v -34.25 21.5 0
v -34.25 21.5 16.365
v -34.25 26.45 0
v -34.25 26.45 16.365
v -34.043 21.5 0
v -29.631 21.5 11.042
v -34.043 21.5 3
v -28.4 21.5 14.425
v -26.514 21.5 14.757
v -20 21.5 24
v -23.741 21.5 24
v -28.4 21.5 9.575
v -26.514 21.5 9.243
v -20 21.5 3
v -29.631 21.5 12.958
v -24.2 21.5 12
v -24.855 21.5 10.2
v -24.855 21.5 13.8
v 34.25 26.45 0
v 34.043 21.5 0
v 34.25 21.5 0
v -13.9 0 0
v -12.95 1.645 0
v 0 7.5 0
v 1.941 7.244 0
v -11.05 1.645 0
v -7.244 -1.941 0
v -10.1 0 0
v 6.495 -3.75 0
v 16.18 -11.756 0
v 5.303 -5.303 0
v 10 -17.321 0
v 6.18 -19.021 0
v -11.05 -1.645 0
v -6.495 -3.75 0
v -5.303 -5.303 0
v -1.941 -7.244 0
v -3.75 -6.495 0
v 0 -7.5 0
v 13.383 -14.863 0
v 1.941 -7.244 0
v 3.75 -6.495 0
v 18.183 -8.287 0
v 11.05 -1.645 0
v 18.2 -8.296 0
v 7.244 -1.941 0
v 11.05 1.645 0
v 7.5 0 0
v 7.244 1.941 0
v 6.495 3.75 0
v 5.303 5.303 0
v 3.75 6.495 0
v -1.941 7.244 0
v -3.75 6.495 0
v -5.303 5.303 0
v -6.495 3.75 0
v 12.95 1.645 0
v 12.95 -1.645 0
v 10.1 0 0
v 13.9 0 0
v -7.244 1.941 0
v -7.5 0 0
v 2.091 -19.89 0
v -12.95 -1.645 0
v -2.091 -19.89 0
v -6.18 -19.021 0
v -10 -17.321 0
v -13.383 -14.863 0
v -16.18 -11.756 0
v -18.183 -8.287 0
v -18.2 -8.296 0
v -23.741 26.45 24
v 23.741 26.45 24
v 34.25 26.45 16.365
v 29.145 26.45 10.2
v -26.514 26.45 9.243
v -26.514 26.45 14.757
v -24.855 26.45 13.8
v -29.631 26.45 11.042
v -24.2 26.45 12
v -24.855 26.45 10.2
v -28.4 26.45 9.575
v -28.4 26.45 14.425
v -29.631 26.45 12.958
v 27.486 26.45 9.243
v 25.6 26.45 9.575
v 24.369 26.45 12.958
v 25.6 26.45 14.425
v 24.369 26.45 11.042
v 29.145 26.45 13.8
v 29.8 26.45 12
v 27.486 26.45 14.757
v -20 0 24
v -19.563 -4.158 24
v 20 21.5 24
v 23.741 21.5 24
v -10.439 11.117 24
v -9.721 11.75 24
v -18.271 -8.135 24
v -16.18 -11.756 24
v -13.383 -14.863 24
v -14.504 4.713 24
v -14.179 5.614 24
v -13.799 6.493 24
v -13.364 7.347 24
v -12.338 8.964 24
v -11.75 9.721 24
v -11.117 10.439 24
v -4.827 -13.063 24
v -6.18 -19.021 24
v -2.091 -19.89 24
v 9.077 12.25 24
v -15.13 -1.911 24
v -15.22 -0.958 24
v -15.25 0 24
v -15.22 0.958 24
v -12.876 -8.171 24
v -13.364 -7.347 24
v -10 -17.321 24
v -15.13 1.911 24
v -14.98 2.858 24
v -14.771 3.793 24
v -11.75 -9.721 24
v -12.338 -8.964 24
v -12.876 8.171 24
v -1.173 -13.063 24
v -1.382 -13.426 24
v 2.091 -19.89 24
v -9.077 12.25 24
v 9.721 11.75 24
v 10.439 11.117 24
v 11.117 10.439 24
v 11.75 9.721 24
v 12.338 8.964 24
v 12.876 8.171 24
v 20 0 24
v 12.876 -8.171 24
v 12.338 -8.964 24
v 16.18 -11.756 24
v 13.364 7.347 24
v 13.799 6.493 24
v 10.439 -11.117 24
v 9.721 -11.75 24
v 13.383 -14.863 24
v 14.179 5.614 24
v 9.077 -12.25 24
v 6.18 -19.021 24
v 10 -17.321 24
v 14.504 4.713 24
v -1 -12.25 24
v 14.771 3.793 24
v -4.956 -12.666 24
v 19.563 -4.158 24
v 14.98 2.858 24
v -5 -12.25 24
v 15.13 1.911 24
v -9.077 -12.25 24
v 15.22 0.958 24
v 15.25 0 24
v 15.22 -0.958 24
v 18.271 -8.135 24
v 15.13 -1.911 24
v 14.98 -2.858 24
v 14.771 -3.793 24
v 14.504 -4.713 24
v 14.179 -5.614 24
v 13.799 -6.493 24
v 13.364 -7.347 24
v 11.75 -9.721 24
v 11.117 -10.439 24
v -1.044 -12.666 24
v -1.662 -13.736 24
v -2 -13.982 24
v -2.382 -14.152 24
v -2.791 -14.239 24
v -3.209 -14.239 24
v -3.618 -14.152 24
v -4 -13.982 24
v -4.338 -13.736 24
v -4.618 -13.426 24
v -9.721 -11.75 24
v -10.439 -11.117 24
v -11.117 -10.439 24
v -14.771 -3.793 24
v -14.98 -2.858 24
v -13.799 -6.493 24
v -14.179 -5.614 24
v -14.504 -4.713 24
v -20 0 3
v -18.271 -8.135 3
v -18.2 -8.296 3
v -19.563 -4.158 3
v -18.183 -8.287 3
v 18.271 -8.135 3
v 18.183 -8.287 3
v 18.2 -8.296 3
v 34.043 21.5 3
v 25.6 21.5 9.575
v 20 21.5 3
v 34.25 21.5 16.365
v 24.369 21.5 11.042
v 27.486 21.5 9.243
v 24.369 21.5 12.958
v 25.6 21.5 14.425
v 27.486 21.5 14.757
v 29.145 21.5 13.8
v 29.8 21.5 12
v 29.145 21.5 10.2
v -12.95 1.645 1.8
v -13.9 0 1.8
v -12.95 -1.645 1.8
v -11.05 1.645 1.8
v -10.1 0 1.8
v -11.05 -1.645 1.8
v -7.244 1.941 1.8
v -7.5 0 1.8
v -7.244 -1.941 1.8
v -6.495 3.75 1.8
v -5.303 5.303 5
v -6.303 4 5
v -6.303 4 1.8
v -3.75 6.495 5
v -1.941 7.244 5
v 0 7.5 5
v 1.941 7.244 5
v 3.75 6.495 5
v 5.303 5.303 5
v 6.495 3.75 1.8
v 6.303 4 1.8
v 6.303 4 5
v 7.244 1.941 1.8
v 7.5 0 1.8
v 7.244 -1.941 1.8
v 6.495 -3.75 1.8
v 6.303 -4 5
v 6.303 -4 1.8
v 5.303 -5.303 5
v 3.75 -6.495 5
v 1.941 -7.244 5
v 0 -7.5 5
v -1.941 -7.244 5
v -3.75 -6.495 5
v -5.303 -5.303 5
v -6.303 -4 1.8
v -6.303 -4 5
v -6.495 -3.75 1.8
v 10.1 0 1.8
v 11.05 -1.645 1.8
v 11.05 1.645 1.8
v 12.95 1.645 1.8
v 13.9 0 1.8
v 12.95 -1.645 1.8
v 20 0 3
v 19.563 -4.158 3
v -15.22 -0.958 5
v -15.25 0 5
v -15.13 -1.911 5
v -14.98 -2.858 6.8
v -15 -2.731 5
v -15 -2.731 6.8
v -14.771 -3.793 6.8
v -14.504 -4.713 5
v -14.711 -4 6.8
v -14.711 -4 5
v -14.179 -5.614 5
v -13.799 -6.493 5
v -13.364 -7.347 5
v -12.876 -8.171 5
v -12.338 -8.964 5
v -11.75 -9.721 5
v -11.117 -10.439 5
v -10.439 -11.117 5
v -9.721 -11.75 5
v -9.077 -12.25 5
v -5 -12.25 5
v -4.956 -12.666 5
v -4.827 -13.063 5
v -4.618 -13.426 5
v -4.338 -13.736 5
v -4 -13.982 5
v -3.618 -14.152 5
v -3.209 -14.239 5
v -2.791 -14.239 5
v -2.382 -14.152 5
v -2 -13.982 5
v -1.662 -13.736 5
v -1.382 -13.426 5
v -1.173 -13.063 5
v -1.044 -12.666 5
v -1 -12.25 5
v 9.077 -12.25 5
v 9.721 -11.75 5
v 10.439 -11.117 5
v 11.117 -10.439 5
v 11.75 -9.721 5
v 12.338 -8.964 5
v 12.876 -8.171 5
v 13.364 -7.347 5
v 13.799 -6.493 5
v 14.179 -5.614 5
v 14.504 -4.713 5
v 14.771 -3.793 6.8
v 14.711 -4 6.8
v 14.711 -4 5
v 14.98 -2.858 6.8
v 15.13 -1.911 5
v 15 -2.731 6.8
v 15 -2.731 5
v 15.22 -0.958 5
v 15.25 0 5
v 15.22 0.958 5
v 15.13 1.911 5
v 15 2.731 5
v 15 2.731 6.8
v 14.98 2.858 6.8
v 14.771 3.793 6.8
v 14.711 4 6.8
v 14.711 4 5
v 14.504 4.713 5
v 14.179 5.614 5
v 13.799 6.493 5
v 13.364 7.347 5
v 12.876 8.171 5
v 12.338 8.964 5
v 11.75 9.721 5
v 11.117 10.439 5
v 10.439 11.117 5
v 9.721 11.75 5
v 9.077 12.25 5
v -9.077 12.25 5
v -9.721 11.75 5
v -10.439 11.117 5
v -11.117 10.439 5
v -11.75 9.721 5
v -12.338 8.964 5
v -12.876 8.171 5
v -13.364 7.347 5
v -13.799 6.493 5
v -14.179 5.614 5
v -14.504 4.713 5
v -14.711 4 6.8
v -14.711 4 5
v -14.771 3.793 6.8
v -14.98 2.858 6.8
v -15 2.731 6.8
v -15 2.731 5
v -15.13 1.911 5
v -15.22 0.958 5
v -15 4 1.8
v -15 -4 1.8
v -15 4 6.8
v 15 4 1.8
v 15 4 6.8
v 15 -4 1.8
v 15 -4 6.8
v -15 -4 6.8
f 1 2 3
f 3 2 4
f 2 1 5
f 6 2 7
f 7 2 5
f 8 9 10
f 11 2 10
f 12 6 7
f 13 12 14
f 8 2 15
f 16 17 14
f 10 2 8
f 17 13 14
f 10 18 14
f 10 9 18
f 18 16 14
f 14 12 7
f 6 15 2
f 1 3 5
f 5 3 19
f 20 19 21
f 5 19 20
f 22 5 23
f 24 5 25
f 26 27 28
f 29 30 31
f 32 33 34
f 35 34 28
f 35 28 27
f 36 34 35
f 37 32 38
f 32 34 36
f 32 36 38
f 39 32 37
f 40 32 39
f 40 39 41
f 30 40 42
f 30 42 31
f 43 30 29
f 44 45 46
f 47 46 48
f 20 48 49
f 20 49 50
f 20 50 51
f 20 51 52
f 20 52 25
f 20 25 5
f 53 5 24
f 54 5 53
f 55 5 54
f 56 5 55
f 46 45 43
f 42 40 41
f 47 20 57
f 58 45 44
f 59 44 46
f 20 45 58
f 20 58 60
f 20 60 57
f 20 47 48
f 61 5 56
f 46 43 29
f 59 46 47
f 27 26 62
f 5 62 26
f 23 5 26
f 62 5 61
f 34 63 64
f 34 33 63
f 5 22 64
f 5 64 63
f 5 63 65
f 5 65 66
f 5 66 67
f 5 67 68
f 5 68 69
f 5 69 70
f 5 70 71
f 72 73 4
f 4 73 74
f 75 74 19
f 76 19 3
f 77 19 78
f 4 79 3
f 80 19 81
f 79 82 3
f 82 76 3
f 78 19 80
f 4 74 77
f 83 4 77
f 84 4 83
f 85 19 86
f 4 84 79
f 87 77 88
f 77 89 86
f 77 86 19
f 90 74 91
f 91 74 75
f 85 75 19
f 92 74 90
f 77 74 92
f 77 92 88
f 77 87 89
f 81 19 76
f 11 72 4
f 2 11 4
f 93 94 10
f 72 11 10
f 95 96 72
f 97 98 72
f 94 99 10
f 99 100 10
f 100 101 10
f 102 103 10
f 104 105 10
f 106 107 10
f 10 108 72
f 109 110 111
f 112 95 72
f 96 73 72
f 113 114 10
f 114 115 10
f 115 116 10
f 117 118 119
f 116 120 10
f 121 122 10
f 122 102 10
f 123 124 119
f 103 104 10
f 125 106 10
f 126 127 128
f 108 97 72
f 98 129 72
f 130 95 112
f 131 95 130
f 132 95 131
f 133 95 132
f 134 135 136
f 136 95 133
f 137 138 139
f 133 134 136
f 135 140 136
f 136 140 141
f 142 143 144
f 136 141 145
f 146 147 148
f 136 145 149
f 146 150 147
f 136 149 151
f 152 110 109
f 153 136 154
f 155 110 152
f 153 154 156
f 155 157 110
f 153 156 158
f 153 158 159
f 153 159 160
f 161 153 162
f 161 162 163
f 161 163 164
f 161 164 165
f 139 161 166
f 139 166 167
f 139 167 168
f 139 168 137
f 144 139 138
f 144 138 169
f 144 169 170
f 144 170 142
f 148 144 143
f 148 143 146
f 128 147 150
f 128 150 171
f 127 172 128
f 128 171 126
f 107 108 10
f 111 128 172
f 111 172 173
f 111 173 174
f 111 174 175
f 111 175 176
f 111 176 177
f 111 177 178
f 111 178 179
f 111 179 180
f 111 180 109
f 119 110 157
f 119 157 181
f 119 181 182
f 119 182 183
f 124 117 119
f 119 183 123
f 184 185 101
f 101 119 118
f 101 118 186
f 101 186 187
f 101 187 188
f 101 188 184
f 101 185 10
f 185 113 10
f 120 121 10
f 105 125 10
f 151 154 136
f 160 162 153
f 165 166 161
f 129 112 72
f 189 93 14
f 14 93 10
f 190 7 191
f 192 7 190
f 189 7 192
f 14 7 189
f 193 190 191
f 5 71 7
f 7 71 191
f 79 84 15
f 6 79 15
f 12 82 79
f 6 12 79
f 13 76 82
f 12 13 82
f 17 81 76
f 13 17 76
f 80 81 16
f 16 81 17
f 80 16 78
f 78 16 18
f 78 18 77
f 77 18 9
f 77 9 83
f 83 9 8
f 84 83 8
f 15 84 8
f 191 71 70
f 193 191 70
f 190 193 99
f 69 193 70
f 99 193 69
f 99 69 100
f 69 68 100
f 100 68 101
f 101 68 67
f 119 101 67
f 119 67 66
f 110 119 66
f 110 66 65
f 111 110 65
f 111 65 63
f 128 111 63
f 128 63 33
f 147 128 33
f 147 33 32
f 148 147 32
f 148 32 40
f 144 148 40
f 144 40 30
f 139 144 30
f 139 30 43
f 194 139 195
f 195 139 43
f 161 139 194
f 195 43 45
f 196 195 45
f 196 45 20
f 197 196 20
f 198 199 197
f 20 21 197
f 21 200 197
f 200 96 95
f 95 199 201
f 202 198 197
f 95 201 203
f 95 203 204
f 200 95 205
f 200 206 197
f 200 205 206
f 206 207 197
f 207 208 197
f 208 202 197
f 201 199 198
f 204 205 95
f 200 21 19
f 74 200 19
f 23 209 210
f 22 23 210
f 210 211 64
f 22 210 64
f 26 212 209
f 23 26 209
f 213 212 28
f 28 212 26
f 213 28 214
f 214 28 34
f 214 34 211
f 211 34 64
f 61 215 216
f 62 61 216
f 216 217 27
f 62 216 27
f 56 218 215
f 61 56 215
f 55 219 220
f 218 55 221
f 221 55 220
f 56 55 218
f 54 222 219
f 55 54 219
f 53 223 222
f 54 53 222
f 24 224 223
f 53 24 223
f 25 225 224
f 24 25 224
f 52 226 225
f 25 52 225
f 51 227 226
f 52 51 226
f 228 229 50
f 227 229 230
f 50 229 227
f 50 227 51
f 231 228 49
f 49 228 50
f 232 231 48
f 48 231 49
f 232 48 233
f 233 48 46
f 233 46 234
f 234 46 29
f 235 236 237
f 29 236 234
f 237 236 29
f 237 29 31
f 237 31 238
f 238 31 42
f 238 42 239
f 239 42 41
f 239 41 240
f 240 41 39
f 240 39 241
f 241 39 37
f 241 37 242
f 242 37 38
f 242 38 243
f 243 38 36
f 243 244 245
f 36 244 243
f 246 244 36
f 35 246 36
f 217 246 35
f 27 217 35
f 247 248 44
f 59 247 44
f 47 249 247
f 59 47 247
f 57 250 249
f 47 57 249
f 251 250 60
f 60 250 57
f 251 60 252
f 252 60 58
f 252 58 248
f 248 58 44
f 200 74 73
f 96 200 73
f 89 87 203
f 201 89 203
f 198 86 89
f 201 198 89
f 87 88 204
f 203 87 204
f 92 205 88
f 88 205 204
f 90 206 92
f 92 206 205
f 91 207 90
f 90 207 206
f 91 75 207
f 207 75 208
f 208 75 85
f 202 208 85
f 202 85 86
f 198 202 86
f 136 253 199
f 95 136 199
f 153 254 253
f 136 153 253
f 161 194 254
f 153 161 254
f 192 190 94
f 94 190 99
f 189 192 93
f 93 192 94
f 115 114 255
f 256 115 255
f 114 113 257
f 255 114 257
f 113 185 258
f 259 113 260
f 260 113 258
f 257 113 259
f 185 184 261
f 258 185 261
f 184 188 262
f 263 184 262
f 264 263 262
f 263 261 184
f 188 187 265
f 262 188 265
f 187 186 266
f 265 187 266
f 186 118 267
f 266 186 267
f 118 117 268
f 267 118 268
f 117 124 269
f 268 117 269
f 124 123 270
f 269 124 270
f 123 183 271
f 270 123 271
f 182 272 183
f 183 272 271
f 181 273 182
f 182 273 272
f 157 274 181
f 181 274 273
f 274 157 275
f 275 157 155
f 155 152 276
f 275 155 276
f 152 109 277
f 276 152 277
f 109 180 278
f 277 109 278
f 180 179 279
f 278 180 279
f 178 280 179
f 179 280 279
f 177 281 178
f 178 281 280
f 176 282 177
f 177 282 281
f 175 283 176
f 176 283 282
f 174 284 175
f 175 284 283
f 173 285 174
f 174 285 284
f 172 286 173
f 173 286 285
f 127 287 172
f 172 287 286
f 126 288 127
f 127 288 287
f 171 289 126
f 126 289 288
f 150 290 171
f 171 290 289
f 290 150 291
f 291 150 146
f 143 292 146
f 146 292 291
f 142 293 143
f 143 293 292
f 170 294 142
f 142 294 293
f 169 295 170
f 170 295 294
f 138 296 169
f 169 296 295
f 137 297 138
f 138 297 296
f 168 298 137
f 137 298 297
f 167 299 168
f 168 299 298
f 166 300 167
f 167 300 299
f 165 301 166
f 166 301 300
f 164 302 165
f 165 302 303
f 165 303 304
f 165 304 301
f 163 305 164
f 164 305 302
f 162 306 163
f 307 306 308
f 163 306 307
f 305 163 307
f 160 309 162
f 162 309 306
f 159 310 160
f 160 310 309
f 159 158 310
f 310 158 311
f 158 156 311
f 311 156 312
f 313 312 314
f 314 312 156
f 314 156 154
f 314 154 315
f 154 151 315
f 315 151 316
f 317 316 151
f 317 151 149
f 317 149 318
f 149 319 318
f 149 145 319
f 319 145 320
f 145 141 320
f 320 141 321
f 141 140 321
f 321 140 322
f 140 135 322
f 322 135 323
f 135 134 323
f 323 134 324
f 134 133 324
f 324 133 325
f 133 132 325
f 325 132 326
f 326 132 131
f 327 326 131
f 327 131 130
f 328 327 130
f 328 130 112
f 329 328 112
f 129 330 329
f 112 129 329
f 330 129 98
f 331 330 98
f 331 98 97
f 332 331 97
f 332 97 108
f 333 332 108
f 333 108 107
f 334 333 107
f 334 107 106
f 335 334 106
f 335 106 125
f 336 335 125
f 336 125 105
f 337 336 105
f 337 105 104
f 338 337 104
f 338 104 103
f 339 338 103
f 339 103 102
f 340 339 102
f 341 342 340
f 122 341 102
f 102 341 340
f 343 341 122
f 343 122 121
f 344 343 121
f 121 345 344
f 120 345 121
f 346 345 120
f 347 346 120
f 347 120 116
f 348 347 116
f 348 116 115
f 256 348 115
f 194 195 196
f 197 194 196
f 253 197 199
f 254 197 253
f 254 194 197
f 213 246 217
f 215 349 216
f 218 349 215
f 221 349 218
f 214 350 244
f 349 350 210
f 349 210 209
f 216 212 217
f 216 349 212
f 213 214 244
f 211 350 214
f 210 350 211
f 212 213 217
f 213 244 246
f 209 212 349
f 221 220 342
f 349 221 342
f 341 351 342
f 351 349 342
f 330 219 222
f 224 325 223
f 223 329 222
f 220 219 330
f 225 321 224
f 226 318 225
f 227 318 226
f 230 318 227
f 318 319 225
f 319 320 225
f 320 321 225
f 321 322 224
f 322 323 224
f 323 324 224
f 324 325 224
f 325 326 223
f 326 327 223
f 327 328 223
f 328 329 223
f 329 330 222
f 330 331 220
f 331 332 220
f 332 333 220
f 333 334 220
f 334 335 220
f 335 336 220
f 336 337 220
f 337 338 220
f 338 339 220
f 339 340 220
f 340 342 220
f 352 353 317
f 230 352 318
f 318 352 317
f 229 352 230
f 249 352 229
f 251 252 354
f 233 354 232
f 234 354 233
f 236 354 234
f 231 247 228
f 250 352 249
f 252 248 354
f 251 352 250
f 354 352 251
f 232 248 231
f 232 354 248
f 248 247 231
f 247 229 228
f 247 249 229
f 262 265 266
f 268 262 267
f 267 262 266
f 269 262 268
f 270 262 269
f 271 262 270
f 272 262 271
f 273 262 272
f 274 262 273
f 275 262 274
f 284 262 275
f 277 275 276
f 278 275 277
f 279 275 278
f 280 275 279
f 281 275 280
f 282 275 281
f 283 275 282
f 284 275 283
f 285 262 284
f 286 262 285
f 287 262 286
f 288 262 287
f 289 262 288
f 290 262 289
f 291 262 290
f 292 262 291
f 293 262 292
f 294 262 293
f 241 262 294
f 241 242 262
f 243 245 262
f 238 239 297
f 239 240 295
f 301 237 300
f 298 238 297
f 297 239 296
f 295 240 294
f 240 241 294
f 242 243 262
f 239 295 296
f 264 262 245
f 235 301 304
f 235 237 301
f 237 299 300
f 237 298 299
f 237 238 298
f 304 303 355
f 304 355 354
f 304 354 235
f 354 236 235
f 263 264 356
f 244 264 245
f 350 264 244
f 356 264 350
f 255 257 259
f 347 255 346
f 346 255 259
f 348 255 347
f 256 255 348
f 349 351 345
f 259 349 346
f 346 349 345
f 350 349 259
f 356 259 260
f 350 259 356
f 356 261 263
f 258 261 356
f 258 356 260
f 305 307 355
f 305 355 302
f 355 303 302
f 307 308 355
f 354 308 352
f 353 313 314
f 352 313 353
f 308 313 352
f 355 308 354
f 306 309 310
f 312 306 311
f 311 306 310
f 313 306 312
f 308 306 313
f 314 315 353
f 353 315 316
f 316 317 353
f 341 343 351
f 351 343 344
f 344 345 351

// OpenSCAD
DrillMotorMount();

module DrillMotorMount()
{
	difference()
	{
		union()
		{
			difference()
			{
				union()
				{
					// body mount
					translate([0,13,24/2])
						cube([40,26,24],center=true);
					translate([0,0,12])
						cylinder(r=40/2,h=24, center=true);

					// mounting tab
					translate([0,24,24/2])
						cube([68.5,5,24],center=true);

					translate([20,10,3/2]) rotate([0,0,-28])
						cube([14,34,3],center=true);
					translate([-20,10,3/2]) rotate([0,0,28])
						cube([14,34,3],center=true);
				}

				// center hole
				cylinder(r=15/2,h=20, center=true);

				// mounting holes
				translate([24/2,0,0])
					cylinder(r=3.8/2,h=20, center=true);
				translate([-24/2,0,0])
					cylinder(r=3.8/2,h=20, center=true);

				translate([0,0,2.5+1.8])
					cube([30,8,5],center=true);

				// body mount cutout
				translate([0,0,15])
					cylinder(r=30.5/2,h=20, center=true, $fn=100);

				// mounting holes on tabs
				translate([27,20,24/2]) rotate([90,0,0])
					cylinder(r=2.8,h=20, center=true);
				translate([-27,20,24/2]) rotate([90,0,0])
					cylinder(r=2.8,h=20, center=true);

				// cut off excess
				translate([0,24+5,24/2])
					cube([70,5.1,26],center=true);

				translate([35,24,22]) rotate([0,36,0])
					cube([30,5.2,10],center=true);
				translate([-35,24,22]) rotate([0,-36,0])
					cube([30,5.2,10],center=true);
			}

			// keyed body mount
			translate([0,24.5/2+5/2,14])
				cube([20,5,20],center=true);
			translate([0,-24.5/2-5/2,14])
				cube([20,5,20],center=true);
		}

		// keyed body mount
		translate([-3,-24.5/2,16])
			cylinder(r=4/2,h=22, center=true, $fn=30);
	}
}
